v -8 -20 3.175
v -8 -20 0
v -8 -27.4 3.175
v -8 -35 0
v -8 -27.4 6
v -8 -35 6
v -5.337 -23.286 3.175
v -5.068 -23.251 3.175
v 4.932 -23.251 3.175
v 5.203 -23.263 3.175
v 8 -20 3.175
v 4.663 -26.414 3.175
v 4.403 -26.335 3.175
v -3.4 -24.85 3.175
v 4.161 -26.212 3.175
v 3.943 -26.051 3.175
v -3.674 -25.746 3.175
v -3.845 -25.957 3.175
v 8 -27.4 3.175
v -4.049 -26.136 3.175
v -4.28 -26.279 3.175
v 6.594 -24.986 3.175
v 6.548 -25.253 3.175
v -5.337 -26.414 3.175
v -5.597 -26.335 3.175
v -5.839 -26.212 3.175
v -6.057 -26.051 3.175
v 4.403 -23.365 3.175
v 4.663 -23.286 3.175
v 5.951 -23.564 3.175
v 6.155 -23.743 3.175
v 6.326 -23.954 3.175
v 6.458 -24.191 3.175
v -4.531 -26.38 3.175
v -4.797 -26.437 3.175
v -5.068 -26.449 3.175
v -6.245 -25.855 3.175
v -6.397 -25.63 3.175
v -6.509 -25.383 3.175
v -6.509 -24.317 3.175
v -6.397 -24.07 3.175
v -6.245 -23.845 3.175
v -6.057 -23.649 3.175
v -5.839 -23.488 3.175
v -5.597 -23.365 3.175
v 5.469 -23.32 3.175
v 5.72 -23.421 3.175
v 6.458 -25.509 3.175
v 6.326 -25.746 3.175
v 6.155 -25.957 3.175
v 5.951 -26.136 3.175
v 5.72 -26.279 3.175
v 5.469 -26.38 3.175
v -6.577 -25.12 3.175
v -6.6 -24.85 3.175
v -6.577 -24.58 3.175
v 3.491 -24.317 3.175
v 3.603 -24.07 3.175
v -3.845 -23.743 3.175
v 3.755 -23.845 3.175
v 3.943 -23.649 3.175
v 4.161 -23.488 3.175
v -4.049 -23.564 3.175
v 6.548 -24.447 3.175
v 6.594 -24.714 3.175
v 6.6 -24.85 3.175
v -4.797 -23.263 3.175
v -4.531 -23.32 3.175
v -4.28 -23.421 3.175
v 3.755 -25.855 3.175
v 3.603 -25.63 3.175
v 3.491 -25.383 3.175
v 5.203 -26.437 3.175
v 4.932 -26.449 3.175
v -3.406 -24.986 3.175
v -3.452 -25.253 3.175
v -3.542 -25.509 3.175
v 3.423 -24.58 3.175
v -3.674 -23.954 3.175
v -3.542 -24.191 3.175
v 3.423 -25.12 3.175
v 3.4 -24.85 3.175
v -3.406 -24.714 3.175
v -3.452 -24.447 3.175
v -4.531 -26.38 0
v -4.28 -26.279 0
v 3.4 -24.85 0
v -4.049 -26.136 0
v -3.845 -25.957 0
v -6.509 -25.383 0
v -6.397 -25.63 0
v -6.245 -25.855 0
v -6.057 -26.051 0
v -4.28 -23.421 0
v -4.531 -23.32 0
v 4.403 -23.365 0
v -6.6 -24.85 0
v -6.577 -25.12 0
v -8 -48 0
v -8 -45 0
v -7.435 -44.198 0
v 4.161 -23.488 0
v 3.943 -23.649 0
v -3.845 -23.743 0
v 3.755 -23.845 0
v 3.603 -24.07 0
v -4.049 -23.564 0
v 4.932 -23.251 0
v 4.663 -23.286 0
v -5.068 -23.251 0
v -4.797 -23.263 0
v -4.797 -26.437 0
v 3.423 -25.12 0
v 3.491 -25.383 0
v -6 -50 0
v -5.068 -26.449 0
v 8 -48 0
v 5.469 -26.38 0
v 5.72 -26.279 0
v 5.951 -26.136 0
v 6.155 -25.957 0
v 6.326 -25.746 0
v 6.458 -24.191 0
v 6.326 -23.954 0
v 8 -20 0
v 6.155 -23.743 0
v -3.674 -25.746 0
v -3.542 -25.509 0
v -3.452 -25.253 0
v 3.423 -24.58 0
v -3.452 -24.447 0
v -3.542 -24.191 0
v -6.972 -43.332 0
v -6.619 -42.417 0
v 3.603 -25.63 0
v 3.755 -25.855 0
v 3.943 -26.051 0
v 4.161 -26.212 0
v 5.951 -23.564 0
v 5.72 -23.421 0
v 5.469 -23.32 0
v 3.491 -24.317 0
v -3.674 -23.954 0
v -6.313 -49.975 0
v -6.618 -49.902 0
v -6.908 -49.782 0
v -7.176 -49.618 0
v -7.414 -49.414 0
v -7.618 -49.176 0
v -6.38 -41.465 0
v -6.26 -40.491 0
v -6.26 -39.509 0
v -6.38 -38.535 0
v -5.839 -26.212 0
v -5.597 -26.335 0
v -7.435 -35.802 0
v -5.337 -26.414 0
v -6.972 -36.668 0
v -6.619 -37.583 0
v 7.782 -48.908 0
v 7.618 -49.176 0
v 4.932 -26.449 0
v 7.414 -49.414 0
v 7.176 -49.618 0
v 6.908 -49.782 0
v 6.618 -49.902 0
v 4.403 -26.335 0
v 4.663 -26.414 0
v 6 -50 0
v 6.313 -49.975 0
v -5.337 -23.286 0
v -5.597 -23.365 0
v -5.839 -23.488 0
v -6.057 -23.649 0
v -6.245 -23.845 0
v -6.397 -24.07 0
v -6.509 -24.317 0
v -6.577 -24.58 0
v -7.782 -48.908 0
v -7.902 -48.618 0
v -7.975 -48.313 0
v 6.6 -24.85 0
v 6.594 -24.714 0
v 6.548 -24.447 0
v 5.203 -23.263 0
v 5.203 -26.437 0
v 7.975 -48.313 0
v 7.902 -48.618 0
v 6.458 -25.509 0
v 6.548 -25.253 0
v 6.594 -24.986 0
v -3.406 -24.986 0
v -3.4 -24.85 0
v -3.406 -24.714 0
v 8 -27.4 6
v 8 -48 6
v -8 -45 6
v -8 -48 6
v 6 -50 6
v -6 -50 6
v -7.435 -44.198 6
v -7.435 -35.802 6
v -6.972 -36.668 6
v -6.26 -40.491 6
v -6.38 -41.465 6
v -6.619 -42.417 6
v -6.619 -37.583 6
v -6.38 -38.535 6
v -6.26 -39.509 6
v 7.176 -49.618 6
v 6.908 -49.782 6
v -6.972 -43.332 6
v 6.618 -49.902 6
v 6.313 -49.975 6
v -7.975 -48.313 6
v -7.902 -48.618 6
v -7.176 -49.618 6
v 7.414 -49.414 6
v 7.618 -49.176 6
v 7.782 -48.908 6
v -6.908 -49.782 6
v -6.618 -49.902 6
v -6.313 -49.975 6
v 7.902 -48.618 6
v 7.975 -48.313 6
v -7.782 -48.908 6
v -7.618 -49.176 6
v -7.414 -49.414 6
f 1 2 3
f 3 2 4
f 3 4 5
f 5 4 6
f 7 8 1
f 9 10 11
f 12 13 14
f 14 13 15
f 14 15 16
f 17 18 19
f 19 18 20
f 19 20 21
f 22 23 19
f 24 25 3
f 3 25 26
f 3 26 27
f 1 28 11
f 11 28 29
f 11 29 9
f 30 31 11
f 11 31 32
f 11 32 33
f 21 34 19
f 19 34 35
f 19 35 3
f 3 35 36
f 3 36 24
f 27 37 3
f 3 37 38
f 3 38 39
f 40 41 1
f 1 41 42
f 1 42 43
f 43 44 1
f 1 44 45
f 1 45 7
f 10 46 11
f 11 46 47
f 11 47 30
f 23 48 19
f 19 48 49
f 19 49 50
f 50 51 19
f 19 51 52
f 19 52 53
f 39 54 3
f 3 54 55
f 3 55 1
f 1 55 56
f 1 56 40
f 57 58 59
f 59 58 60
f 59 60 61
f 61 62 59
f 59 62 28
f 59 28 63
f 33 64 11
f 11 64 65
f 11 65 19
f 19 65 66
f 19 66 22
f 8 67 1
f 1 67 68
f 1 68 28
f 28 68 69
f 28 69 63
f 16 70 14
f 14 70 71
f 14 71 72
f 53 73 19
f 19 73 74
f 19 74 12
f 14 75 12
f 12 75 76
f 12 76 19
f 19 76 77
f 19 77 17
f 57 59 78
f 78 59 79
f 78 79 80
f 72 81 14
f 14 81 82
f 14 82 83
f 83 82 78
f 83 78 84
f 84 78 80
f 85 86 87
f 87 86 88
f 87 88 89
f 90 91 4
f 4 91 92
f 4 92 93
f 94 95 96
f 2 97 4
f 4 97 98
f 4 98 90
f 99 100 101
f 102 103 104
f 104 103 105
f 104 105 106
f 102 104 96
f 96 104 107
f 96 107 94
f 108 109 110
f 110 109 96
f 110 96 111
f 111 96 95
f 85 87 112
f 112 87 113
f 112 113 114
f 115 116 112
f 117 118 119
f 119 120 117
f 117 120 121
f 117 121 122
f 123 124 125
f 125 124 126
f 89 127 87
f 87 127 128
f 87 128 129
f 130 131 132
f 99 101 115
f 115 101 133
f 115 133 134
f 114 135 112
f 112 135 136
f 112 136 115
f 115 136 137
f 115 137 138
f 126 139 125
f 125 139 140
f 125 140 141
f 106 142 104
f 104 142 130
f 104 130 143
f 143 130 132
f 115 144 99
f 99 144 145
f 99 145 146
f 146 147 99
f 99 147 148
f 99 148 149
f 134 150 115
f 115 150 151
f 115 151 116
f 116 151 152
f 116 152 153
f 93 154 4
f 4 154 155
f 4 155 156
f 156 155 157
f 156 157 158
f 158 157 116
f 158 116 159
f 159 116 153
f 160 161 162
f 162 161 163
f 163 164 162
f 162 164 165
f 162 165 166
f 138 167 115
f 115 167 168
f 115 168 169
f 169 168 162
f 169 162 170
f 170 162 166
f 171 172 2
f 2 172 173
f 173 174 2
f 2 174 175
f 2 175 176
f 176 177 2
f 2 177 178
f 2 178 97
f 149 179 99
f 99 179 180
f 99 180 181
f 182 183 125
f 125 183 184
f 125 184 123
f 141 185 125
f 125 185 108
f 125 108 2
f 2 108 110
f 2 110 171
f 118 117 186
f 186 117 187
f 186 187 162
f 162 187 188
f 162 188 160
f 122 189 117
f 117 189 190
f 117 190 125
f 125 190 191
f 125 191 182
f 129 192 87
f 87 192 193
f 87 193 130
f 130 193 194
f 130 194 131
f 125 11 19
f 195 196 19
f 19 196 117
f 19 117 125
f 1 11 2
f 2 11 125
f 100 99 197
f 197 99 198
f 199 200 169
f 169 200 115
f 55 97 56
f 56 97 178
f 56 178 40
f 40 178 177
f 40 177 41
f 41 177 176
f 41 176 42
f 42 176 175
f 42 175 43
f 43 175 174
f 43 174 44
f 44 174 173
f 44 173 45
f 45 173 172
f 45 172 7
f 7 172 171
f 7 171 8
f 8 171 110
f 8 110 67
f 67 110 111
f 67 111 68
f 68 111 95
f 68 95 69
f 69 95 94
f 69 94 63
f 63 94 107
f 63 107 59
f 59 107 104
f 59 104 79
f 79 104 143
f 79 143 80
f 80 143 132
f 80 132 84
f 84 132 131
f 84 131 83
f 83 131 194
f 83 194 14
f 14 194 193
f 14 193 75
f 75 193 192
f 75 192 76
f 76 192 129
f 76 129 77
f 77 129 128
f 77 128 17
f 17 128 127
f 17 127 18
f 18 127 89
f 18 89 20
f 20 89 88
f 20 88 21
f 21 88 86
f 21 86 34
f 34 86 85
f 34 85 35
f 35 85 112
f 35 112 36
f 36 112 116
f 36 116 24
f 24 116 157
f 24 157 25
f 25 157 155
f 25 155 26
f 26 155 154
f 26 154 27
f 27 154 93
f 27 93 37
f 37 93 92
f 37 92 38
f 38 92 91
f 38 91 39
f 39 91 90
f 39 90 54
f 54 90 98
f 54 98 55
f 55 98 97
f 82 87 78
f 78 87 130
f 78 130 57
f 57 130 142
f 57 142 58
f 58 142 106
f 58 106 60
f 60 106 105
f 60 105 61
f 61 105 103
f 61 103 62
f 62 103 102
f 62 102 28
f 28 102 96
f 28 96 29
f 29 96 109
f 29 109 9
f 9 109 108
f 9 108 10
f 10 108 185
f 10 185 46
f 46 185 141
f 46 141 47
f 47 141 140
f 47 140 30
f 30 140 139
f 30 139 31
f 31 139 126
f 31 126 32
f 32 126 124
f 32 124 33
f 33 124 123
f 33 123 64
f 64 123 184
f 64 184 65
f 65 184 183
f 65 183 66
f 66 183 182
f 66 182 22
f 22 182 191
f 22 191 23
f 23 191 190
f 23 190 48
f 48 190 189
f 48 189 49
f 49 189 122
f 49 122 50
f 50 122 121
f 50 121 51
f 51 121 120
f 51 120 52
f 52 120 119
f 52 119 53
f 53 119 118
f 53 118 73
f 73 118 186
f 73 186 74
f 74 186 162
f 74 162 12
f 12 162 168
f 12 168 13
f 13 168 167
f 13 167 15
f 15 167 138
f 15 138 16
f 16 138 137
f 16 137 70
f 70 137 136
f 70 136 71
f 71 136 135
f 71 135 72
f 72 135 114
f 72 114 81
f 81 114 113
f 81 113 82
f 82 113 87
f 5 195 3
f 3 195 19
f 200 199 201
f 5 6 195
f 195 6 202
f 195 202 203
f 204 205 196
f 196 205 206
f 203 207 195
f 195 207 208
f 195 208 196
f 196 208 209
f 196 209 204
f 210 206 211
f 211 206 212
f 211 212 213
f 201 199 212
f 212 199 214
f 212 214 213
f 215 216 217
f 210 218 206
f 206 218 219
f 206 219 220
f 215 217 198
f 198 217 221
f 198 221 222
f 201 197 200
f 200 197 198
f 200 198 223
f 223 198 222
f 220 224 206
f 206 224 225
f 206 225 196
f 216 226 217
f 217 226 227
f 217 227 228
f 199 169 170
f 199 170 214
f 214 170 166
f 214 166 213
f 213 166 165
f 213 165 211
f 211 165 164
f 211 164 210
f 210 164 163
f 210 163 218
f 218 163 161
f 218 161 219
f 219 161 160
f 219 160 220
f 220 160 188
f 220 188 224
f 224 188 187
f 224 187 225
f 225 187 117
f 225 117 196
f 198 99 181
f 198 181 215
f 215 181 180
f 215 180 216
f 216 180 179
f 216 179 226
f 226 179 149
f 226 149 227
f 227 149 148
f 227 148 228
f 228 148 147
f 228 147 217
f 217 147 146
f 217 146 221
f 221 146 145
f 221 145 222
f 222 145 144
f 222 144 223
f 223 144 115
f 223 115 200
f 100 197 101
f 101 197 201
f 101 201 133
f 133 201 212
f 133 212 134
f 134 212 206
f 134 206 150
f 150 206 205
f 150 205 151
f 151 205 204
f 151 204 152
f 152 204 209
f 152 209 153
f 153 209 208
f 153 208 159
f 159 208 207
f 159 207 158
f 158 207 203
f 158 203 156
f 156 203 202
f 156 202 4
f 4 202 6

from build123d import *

# Parameters (mm, degrees)
SKETCH1_W               = 16
SKETCH1_H               = 30
SKETCH1_R               = 1.6
BOSS_EXTRUDE1_DEPTH     = 3.175
SKETCH3_W               = 16
SKETCH3_H               = 22.6
BOSS_EXTRUDE2_DEPTH     = 6
FILLET1_R               = 2
CUT_EXTRUDE1_DEPTH      = 51.735398146
CUT_EXTRUDE1_DEPTH_BACK = 51.735398146


with BuildPart() as part:
    # Sketch1 → Boss-Extrude1 (new body)
    with BuildSketch(Plane.XY):
        with Locations((0, -35)):
            Rectangle(SKETCH1_W, SKETCH1_H)
        with Locations((5, -24.85)):
            Circle(SKETCH1_R, mode=Mode.SUBTRACT)
        with Locations((-5, -24.85)):
            Circle(SKETCH1_R, mode=Mode.SUBTRACT)
    extrude(amount=BOSS_EXTRUDE1_DEPTH)

    # Sketch3 → Boss-Extrude2 (add)
    with BuildSketch(Plane(origin=(0, 0, 0), x_dir=(-1, 0, 0), z_dir=(0, 0, -1))):
        with Locations((0, -38.7)):
            Rectangle(SKETCH3_W, SKETCH3_H)
    extrude(amount=-BOSS_EXTRUDE2_DEPTH)

    # Fillet1
    fillet1_edges = [part.edges().sort_by_distance(p)[0] for p in [
        (8, -50, 3),
        (-8, -50, 3),
    ]]
    fillet(fillet1_edges, radius=FILLET1_R)

    # Sketch4 → Cut-Extrude1 (cut, two sides: drawn at the far end of the back side and taken through both)
    with BuildSketch(Plane.XY.offset(3.175).offset(-CUT_EXTRUDE1_DEPTH_BACK)):
        with BuildLine():
            Line((-8, -45), (-8, -35))
            ThreePointArc((-8, -35), (-6.244997998, -40), (-8, -45))
        make_face()
    extrude(amount=CUT_EXTRUDE1_DEPTH + CUT_EXTRUDE1_DEPTH_BACK, mode=Mode.SUBTRACT)


solid = part.part
